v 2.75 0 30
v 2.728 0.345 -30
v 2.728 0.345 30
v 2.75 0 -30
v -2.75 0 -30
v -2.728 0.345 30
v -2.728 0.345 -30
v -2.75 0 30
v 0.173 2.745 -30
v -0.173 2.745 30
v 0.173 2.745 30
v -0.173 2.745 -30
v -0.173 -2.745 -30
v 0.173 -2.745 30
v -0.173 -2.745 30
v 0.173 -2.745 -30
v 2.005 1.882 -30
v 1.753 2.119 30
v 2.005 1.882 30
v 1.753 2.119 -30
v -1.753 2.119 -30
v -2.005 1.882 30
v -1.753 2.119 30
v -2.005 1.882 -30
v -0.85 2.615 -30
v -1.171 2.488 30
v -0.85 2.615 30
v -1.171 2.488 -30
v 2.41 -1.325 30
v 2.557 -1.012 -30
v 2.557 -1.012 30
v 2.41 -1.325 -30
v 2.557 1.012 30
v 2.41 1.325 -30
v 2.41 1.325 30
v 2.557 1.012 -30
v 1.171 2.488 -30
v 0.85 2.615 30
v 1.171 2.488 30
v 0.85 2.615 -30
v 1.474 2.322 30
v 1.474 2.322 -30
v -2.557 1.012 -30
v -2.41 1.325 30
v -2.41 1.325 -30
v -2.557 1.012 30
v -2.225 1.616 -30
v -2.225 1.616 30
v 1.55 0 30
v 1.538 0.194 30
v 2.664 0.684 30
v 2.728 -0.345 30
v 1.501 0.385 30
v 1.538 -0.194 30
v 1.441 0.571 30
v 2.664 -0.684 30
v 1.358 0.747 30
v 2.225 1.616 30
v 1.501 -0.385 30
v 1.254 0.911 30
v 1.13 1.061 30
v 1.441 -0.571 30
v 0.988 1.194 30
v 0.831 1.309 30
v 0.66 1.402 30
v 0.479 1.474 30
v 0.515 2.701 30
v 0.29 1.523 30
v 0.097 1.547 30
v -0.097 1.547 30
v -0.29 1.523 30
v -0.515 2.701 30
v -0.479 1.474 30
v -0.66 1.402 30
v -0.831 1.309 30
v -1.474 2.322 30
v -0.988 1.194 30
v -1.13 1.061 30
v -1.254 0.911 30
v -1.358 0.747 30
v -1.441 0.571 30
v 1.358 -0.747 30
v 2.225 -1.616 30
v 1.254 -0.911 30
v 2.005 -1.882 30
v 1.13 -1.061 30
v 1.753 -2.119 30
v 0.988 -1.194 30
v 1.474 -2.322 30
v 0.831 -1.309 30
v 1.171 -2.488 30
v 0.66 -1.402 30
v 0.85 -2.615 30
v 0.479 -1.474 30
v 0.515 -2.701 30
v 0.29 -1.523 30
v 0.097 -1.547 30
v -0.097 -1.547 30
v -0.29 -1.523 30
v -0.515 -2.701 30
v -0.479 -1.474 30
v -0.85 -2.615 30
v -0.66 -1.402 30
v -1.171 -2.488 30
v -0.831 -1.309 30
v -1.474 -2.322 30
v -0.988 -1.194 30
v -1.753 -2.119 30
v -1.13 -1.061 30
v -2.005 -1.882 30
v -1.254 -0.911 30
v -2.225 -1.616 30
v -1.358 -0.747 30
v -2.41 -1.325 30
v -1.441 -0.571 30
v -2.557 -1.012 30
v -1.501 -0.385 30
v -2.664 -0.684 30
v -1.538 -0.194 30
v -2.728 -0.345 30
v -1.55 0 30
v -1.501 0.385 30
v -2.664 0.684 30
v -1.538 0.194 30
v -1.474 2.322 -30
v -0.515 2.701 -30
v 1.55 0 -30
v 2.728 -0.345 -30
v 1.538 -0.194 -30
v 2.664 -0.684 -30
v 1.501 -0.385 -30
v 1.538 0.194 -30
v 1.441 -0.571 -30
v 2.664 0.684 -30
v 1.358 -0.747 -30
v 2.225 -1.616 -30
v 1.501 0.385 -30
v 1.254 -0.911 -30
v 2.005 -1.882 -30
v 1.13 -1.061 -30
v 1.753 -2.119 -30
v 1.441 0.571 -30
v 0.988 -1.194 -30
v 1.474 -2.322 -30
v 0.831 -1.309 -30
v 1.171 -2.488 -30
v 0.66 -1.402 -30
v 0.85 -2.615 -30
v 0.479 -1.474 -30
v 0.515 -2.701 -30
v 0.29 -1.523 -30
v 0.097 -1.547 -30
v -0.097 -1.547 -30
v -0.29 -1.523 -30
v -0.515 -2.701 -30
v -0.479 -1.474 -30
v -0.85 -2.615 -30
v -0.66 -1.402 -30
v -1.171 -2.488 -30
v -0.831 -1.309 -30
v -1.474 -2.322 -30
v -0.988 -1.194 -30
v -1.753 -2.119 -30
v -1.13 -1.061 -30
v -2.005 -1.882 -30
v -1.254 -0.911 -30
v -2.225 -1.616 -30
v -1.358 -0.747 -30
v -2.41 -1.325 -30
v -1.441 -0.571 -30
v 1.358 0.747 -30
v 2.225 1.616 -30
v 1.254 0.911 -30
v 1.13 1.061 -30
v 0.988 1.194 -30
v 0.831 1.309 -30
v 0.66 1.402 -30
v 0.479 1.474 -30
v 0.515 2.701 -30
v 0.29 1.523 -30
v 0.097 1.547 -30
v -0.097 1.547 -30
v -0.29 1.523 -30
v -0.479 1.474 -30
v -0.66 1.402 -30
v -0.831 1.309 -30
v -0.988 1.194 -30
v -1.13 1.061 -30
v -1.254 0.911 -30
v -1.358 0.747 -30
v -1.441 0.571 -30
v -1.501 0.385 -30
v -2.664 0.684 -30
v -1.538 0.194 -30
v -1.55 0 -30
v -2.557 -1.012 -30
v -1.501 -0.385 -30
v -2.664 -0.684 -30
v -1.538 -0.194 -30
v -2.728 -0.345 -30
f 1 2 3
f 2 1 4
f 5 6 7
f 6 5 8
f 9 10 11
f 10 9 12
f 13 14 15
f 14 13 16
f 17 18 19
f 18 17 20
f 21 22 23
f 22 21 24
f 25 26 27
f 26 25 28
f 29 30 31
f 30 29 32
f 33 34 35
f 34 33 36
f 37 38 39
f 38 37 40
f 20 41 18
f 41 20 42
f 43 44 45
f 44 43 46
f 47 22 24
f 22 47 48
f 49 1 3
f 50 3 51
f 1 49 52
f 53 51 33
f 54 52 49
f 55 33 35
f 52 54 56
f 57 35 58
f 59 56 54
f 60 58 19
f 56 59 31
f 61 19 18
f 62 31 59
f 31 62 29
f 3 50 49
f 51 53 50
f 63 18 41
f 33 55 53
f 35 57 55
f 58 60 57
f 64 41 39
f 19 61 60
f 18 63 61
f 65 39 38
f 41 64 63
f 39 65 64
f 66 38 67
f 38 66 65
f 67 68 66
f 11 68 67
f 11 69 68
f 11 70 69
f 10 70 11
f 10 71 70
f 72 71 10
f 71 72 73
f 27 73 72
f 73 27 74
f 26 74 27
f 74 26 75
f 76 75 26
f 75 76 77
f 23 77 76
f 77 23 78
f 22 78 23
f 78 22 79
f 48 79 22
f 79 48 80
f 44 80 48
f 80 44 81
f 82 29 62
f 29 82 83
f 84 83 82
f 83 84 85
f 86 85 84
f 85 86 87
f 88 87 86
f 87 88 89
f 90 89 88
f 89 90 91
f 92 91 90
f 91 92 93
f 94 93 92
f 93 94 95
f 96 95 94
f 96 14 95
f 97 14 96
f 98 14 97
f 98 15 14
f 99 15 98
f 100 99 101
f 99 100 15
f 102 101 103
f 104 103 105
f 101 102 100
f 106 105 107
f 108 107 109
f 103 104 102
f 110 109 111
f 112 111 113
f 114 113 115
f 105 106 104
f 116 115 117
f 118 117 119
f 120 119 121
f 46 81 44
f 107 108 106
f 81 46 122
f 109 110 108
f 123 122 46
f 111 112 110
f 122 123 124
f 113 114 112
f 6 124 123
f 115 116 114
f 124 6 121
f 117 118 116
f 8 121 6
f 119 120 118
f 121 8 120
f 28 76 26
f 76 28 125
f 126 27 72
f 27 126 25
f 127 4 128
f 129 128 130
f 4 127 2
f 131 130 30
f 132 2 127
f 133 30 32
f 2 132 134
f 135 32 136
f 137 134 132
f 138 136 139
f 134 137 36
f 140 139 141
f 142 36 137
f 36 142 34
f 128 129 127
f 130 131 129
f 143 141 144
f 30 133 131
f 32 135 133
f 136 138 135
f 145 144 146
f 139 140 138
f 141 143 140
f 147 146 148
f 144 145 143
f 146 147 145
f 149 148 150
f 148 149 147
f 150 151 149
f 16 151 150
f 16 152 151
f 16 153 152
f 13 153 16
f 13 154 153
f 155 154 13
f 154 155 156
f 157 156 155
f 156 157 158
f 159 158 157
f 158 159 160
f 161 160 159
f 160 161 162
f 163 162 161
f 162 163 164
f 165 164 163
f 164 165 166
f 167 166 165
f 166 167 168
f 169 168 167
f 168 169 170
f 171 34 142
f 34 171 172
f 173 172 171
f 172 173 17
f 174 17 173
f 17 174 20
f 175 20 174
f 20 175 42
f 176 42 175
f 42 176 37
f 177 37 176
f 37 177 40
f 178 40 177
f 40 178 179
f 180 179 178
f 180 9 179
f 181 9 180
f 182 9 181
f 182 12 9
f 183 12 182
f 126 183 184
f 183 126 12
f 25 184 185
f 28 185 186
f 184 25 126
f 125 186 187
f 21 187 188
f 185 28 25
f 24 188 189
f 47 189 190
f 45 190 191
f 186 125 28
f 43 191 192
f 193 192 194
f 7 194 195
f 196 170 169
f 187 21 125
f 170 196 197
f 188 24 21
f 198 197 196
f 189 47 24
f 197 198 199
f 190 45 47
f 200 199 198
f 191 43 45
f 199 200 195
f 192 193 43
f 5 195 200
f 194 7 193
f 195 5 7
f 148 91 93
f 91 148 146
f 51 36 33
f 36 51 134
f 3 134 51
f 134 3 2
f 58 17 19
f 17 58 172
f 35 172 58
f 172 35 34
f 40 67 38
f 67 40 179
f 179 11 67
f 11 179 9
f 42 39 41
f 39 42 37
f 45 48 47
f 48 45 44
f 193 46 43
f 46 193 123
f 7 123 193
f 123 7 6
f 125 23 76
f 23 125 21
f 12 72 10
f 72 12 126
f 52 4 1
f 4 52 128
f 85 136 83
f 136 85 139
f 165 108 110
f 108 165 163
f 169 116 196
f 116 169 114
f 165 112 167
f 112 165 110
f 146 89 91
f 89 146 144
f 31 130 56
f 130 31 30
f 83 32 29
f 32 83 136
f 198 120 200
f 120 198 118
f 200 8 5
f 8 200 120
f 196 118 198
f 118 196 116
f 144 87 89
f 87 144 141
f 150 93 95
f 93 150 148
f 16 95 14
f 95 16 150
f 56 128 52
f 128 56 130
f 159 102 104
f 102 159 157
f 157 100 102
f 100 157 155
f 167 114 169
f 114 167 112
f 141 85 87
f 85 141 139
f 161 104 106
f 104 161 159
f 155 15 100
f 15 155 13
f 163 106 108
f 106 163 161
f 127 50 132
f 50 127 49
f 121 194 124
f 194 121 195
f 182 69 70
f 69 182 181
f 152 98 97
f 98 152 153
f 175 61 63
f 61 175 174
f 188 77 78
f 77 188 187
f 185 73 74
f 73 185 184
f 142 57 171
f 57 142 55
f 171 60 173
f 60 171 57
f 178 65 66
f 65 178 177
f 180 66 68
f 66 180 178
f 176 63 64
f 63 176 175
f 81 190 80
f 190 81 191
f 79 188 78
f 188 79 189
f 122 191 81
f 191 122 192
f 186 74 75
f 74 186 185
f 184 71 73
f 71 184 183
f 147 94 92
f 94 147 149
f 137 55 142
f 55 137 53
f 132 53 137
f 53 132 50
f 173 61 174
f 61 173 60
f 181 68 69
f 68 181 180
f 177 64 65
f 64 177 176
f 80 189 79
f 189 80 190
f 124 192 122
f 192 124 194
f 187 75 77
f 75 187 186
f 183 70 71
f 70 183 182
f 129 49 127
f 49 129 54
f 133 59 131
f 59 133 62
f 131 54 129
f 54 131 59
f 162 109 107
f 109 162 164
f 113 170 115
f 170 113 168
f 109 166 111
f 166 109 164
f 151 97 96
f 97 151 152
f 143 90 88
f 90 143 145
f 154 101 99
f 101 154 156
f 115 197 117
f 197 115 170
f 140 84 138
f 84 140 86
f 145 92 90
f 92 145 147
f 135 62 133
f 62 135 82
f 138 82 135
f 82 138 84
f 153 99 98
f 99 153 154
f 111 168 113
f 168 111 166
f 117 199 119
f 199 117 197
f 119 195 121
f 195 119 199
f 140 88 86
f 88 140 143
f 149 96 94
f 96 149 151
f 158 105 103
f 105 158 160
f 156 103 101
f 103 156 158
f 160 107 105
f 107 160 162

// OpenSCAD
$fn = 50;


difference() {
	union() {
		translate(v = [0, 0, -30.0000000000]) {
			cylinder(h = 60, r = 2.7500000000);
		}
	}
	union() {
		translate(v = [0, 0, -100.0000000000]) {
			cylinder(h = 200, r = 1.5500000000);
		}
	}
}
